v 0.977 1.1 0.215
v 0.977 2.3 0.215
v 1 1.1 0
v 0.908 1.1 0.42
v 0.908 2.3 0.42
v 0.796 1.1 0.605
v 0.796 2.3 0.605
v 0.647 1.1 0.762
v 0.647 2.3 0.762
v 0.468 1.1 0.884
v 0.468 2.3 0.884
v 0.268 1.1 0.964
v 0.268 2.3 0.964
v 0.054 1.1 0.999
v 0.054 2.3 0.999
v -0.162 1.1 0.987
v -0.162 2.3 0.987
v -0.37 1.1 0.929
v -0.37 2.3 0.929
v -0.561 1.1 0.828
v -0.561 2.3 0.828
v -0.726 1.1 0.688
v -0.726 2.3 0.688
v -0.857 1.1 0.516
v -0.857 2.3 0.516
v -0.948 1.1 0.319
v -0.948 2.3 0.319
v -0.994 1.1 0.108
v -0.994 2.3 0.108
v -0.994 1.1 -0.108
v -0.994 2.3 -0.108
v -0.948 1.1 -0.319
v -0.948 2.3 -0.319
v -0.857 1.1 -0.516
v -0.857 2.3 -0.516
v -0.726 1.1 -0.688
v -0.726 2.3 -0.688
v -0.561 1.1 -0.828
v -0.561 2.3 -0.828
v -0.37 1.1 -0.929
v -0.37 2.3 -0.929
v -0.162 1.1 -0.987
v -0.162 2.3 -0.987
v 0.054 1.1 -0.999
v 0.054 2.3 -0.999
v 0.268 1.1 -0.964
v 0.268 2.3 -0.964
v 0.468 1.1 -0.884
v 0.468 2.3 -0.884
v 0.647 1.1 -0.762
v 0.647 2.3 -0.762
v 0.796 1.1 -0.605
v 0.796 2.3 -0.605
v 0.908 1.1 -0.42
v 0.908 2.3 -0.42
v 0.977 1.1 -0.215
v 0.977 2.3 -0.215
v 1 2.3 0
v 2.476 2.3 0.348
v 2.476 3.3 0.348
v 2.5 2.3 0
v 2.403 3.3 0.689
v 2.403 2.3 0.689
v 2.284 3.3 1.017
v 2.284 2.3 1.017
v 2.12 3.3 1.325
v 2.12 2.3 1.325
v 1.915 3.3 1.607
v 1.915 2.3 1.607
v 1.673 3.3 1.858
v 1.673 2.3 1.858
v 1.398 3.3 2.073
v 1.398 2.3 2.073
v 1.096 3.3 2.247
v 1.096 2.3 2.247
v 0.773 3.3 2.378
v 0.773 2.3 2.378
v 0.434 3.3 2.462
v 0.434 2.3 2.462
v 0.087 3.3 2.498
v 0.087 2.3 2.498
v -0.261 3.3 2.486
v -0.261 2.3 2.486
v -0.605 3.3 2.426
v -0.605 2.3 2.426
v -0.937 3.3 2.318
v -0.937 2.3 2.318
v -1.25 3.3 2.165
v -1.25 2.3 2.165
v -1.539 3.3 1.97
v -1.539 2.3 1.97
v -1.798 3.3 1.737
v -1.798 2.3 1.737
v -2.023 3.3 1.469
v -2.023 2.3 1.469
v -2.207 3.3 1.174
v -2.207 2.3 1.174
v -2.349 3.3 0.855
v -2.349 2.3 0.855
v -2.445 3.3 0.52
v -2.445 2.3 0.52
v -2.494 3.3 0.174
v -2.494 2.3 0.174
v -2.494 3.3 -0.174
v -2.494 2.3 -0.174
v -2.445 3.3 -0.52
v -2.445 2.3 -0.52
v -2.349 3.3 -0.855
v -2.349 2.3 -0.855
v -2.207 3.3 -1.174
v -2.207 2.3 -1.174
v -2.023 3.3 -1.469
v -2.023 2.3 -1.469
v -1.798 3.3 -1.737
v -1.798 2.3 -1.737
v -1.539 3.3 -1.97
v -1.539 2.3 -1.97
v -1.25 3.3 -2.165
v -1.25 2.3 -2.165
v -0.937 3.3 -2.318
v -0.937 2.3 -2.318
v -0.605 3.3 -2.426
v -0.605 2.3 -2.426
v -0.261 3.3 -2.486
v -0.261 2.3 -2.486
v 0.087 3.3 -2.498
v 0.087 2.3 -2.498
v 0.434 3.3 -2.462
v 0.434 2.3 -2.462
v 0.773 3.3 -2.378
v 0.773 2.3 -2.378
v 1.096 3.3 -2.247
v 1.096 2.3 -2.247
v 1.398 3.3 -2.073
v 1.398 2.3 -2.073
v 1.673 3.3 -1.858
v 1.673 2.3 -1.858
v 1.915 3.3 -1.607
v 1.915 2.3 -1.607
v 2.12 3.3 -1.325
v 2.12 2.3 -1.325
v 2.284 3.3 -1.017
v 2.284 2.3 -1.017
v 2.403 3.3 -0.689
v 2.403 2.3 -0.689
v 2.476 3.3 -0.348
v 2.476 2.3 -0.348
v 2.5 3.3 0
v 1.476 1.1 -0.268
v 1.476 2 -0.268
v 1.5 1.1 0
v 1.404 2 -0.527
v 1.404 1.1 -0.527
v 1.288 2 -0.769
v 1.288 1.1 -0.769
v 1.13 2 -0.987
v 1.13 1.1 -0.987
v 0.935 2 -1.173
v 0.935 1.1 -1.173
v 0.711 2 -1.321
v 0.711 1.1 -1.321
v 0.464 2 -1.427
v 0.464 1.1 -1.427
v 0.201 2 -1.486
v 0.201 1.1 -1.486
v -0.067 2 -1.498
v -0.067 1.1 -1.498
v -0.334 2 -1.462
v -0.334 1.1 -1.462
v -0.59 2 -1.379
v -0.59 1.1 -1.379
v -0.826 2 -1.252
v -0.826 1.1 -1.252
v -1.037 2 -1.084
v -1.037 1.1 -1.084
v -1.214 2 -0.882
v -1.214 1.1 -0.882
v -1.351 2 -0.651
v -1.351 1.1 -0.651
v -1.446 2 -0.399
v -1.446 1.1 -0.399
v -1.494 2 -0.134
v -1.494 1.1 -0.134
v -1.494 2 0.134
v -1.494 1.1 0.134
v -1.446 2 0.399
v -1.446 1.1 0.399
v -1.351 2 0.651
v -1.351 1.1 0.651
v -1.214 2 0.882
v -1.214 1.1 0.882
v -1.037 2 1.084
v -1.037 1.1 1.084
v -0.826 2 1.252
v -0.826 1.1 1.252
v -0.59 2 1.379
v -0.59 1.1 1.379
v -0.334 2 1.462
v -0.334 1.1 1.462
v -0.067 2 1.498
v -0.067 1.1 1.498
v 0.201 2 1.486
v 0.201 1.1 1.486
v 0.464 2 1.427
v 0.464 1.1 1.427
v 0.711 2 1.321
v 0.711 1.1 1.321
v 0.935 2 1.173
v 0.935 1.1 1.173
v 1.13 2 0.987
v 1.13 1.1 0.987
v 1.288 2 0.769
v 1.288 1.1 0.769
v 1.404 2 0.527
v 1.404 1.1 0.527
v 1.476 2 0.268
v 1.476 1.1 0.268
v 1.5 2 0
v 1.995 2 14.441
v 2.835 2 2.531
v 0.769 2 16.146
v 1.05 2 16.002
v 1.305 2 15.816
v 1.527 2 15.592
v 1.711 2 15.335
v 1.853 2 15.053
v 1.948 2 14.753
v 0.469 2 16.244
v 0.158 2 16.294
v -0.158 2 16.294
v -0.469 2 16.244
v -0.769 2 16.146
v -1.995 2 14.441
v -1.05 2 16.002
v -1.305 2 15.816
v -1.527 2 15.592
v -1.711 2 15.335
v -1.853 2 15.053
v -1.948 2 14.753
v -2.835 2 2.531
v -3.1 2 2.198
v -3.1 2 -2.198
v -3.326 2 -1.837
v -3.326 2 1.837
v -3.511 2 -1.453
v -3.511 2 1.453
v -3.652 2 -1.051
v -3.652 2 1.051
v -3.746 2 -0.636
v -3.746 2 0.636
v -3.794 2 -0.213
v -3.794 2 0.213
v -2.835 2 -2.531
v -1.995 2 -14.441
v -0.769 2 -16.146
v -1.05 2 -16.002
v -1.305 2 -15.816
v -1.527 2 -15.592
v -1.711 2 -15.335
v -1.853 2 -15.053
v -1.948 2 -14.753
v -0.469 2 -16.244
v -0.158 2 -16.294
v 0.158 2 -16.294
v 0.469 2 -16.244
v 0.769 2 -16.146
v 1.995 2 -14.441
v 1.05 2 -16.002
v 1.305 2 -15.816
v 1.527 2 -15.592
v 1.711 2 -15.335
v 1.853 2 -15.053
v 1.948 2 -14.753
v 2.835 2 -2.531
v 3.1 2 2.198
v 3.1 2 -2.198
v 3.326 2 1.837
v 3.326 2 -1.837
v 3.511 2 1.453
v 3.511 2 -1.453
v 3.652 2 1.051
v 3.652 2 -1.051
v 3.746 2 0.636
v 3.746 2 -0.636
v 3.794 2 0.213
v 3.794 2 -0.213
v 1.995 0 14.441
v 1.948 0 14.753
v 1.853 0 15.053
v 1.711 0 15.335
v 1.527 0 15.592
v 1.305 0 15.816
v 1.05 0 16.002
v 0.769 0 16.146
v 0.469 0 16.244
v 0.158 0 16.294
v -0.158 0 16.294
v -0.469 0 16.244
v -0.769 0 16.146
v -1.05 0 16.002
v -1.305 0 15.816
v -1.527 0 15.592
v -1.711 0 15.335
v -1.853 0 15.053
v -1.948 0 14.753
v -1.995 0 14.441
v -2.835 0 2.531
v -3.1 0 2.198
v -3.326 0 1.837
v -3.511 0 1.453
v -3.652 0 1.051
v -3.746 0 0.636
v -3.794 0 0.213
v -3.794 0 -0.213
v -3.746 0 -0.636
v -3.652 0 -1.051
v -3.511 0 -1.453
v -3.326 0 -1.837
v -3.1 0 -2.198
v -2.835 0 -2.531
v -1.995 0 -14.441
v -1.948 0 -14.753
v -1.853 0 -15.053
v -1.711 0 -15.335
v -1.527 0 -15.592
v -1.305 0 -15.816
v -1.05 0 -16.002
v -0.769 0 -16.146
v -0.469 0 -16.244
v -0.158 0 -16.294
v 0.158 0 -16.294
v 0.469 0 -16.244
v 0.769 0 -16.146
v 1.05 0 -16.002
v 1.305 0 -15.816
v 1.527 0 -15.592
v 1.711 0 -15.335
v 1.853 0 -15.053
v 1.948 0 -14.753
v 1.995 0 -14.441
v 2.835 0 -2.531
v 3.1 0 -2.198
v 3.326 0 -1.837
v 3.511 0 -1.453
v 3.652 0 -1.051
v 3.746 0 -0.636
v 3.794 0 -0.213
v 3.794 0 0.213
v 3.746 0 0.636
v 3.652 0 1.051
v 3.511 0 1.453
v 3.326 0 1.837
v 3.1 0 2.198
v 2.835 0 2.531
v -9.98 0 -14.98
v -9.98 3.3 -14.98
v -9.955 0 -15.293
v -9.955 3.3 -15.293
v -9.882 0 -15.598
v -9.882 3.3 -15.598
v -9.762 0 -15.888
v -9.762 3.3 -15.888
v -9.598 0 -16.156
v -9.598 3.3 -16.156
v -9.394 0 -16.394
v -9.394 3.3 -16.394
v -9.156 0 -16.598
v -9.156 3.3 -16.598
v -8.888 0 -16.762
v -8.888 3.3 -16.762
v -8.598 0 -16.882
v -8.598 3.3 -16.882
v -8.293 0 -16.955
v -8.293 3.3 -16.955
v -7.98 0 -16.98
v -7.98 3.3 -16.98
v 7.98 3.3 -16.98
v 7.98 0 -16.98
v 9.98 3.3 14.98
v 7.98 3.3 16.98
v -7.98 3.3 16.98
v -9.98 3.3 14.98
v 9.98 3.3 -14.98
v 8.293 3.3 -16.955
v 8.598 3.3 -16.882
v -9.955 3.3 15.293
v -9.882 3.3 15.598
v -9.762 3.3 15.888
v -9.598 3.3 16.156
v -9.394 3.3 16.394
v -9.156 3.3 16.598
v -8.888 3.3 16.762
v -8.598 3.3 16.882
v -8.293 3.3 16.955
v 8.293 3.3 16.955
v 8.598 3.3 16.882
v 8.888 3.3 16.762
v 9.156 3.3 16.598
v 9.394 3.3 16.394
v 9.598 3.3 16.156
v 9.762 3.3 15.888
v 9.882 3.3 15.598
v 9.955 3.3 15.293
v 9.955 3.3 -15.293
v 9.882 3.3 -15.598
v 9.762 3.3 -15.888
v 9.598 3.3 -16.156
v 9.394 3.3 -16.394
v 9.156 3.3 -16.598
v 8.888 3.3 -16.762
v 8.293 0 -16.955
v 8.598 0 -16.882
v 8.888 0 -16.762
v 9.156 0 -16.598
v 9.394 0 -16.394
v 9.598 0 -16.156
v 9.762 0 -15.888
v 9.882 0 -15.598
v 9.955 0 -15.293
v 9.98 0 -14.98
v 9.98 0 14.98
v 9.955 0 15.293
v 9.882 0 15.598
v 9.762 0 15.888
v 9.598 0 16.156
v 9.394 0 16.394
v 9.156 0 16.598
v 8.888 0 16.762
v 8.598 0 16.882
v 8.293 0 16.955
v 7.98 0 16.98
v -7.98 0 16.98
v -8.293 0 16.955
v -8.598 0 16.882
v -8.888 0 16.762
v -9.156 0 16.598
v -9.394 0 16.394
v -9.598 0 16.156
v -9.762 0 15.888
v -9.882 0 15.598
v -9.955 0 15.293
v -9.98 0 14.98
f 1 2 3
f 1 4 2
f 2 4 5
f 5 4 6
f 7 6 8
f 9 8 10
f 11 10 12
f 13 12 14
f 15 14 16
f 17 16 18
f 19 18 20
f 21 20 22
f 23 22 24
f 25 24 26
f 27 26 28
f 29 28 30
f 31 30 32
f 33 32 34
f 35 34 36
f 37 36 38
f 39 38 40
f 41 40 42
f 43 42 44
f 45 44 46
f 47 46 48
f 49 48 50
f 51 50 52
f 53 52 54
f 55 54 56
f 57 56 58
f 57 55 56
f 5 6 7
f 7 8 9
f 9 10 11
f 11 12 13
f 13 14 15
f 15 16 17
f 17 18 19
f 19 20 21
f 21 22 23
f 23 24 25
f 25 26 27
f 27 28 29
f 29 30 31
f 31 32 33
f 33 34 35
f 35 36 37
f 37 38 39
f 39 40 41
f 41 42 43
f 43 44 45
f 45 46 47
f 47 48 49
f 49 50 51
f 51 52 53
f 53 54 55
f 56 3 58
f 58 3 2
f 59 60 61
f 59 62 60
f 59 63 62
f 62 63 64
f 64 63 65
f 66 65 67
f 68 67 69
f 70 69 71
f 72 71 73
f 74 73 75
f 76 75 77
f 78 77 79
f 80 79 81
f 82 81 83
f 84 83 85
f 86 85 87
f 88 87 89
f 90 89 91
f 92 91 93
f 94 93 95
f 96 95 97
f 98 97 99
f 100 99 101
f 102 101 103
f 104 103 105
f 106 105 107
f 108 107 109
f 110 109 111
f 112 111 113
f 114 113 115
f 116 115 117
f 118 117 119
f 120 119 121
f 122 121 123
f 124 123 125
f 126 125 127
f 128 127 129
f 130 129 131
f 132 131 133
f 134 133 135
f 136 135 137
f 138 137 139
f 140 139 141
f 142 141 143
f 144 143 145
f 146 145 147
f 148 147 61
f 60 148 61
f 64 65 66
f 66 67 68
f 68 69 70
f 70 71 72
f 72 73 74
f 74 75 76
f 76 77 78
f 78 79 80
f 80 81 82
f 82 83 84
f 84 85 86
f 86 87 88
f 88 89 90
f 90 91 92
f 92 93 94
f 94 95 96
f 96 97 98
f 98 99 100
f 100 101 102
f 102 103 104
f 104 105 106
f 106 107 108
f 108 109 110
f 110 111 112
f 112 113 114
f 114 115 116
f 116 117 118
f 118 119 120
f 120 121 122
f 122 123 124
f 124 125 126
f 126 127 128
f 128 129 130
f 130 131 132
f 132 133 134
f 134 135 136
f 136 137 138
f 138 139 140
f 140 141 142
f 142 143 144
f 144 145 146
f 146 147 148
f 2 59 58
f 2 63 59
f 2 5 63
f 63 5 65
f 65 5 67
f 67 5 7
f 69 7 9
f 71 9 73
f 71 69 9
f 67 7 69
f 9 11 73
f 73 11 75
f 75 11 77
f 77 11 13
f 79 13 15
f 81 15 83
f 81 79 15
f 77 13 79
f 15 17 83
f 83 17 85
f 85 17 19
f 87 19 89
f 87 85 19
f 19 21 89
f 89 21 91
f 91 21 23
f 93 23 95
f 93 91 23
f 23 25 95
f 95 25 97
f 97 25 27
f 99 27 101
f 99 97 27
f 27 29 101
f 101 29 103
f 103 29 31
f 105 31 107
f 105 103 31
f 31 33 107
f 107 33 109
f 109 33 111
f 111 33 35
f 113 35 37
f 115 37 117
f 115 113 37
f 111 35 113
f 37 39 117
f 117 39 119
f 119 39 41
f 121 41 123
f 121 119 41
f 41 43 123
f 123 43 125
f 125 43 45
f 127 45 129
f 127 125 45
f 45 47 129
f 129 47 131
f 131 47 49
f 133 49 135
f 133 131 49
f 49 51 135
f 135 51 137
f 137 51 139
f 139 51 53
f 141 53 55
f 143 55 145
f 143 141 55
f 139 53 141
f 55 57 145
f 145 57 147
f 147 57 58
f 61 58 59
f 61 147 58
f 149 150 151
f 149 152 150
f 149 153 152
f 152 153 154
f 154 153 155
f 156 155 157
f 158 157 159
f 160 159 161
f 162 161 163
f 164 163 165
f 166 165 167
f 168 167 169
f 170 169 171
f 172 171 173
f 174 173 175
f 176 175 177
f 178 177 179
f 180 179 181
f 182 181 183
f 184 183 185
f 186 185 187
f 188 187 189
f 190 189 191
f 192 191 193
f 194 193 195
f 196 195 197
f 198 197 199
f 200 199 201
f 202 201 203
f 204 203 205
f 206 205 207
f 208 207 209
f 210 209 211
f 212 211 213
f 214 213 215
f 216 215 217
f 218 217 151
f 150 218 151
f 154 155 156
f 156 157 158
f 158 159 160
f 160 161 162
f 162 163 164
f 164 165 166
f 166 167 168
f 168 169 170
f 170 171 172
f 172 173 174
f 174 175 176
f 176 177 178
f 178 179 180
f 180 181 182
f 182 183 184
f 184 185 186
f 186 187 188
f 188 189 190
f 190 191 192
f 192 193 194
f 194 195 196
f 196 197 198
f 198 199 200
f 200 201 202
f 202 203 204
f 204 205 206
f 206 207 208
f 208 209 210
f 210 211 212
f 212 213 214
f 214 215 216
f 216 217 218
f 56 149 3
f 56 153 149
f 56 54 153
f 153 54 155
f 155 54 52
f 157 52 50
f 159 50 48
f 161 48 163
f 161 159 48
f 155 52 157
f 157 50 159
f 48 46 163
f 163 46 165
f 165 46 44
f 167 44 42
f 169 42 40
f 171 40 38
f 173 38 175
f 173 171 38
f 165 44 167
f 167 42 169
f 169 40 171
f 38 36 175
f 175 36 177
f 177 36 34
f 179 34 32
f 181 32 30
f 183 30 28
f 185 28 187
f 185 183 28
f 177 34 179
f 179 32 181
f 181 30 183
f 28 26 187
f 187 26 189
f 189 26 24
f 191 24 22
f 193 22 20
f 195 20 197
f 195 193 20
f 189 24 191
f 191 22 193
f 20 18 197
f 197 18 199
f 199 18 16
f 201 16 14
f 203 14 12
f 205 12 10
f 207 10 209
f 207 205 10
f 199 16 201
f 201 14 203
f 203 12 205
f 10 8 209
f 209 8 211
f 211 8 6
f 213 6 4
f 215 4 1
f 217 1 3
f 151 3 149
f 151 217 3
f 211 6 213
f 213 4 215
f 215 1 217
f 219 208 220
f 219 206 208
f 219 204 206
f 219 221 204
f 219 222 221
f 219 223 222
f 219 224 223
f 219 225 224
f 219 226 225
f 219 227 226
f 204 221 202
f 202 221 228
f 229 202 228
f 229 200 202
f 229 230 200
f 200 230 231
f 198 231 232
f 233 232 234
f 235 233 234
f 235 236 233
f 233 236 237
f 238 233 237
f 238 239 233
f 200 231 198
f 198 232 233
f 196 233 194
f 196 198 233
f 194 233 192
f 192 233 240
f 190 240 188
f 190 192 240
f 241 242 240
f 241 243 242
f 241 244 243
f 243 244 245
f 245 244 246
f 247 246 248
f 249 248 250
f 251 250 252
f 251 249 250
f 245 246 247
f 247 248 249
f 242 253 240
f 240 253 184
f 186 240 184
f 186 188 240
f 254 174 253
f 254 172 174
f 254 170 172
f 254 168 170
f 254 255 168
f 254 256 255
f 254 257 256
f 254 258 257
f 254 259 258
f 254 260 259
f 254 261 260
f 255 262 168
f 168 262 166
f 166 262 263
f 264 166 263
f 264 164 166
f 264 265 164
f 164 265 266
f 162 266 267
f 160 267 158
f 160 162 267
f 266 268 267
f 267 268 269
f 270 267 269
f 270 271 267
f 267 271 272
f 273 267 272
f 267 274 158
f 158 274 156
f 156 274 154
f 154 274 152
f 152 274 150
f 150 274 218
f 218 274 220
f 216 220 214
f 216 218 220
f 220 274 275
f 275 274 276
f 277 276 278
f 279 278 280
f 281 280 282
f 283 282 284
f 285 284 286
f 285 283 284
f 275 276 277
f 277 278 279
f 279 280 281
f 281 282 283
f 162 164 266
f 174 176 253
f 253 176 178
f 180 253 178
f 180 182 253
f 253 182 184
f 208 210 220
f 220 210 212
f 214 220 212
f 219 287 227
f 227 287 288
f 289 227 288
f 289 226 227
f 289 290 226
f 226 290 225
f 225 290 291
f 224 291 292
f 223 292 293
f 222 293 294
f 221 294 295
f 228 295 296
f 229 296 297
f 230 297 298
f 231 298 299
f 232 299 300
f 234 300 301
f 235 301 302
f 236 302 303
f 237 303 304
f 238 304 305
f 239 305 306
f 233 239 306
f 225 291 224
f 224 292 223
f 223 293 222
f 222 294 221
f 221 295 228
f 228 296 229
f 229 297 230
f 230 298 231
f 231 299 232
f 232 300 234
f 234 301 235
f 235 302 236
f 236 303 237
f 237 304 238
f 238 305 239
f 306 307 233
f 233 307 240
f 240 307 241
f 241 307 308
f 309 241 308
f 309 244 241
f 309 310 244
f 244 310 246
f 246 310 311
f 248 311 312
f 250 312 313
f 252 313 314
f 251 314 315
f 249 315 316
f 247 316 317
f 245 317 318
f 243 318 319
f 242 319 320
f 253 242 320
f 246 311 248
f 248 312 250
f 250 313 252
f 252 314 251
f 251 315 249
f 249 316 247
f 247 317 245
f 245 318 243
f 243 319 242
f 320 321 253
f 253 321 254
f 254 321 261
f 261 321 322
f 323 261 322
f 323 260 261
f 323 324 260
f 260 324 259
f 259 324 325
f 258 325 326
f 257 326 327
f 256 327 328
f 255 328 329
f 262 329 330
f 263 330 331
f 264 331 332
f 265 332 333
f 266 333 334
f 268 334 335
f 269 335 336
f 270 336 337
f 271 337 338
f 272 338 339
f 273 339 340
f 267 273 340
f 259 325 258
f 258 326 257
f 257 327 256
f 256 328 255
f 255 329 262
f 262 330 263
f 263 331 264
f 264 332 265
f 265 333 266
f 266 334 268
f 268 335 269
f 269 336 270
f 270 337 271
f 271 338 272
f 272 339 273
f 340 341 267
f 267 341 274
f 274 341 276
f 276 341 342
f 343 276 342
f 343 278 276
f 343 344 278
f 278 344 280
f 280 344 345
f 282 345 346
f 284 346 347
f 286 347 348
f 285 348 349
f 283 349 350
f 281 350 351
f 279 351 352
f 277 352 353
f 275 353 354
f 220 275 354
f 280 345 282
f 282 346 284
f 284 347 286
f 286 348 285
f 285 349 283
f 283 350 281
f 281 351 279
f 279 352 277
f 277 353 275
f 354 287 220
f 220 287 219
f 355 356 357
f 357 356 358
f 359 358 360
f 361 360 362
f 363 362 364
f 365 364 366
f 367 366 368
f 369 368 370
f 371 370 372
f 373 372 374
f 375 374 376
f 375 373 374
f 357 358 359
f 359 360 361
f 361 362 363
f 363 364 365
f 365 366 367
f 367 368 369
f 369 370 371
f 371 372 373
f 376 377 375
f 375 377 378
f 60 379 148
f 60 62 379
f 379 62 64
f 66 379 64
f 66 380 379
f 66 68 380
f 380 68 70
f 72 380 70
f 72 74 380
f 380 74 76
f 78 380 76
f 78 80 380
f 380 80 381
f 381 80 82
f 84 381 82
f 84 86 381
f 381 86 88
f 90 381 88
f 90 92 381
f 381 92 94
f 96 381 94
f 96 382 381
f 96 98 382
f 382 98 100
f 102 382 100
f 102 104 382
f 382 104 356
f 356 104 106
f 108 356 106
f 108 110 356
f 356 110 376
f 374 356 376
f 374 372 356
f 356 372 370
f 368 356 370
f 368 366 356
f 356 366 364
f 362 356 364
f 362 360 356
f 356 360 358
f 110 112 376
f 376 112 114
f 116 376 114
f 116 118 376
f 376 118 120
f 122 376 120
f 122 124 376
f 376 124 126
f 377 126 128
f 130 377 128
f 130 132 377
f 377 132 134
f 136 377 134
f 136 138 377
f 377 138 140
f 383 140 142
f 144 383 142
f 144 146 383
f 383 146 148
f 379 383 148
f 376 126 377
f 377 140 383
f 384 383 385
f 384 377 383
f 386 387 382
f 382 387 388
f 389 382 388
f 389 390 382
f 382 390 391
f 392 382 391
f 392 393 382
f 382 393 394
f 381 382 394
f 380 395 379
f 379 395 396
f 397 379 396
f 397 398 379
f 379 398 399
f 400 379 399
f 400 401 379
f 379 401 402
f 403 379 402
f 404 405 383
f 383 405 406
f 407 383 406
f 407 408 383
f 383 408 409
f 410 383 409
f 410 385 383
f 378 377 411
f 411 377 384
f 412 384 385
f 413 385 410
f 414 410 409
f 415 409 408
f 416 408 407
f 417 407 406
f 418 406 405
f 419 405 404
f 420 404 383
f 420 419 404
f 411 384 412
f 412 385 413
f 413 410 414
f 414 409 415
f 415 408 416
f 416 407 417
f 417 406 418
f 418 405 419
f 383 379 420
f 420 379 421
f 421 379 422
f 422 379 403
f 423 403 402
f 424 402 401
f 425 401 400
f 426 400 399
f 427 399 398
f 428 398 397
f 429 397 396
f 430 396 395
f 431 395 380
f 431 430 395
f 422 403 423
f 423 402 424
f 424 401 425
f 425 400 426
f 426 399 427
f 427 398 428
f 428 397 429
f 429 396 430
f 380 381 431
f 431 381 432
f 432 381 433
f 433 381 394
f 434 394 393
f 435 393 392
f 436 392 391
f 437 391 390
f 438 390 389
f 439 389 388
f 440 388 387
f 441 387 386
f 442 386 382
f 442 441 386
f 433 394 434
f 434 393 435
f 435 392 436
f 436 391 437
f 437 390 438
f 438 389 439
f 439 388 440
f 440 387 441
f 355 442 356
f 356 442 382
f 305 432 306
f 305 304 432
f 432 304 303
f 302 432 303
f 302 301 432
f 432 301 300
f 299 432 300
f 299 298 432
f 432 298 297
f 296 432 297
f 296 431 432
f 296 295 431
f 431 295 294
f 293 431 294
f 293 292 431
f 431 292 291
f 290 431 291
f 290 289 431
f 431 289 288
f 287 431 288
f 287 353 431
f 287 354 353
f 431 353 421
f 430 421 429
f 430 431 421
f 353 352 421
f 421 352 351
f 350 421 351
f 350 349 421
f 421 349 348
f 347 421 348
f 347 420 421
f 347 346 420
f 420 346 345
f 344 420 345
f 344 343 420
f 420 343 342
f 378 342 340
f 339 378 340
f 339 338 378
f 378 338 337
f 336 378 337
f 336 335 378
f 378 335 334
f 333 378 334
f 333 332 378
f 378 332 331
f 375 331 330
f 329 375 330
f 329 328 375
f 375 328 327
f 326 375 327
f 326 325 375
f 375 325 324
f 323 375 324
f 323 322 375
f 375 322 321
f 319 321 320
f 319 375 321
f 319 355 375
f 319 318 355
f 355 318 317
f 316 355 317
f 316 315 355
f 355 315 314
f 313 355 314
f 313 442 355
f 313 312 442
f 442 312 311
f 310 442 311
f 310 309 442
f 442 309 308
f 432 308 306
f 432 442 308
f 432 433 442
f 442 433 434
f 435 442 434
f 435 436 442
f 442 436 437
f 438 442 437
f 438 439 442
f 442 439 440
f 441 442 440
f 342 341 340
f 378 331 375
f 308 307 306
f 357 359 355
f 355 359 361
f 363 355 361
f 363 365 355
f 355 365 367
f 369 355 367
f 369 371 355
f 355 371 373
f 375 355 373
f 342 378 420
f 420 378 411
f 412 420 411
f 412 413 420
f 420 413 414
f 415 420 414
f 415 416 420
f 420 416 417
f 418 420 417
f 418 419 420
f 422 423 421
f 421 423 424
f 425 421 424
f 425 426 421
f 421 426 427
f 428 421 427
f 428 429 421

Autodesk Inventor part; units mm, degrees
ref_plane "YZ Plane" through (0, 0, 0) normal (1, 0, 0) x (0, 1, 0)
ref_plane "XZ Plane" through (0, 0, 0) normal (0, 1, 0) x (-1, 0, 0)
ref_plane "XY Plane" through (0, 0, 0) normal (0, 0, 1) x (1, 0, 0)
sketch "Sketch1" plane through (0, 0, 0) normal (0, 1, 0) x (-1, 0, 0)
  line L0 (9.98, 16.98) -> (-9.98, 16.98)
  line L1 (-9.98, 16.98) -> (-9.98, -16.98)
  line L2 (-9.98, -16.98) -> (9.98, -16.98)
  line L3 (9.98, -16.98) -> (9.98, 16.98)
  line L4 (9.98, 16.98) -> (-9.98, -16.98) construction
  line L5 (-9.98, 16.98) -> (9.98, -16.98) construction
  point P0 (0, 0)
  dimension "d0" = 33.96
  dimension "d1" = 19.96
extrude "arm-horn" add sketch "Sketch1" along normal blind 3.3
fillet "Fillet1" radius 2 1 edges at (-9.98, 1.65, 16.98)
fillet "Fillet2" radius 2 1 edges at (9.98, 1.65, 16.98)
fillet "Fillet3" radius 2 1 edges at (9.98, 1.65, -16.98)
fillet "Fillet4" radius 2 1 edges at (-9.98, 1.65, -16.98)
sketch "Sketch3" plane through (0, 0, 0) normal (0, -1, 0) x (1, 0, 0)
  arc A0 (-2.612, 2.76) -> (-2.8345, 2.5309) centre (0, 0) ccw construction
  arc A1 (-1.9951, -14.4406) -> (1.9951, -14.4406) centre (0, -14.3) ccw
  arc A2 (0, 12.3) -> (1.9951, 14.4406) centre (0, 14.3) ccw construction
  line L0 (1.9951, 14.4406) -> (2.8345, 2.5309)
  line L1 (-1.9951, 14.4406) -> (-2.8345, 2.5309)
  line L2 (-2.8345, -2.5309) -> (-1.9951, -14.4406)
  line L3 (2.8345, -2.5309) -> (1.9951, -14.4406)
  circle A3 centre (0, -1.5) radius 2.9 construction
  arc A4 (-2.612, 2.76) -> (-2.8928, 1.7039) centre (0, 1.5) ccw construction
  line L4 (-7.98, 16.98) -> (7.98, 16.98) construction
  line L5 (0, 16.98) -> (0, -18.0608) construction
  line L6 (7.98, -16.98) -> (-7.98, -16.98) construction
  arc A5 (0, 4.4) -> (-2.612, 2.76) centre (0, 1.5) ccw construction
  arc A6 (2.612, 2.76) -> (0, 4.4) centre (0, 1.5) ccw construction
  arc A7 (0, 3.8) -> (-2.612, 2.76) centre (0, 0) ccw construction
  arc A8 (2.612, 2.76) -> (0, 3.8) centre (0, 0) ccw construction
  arc A9 (-2.8928, 1.7039) -> (-2.4819, 0) centre (0, 1.5) ccw construction
  arc A10 (-2.4819, 0) -> (2.4819, 0) centre (0, 1.5) ccw construction
  arc A11 (2.4819, 0) -> (2.8928, 1.7039) centre (0, 1.5) ccw construction
  arc A12 (2.8928, 1.7039) -> (2.612, 2.76) centre (0, 1.5) ccw construction
  line L7 (-2.8345, 2.5309) -> (-2.8928, 1.7039) construction
  arc A13 (-2.8345, 2.5309) -> (-2.8345, -2.5309) centre (0, 0) ccw
  arc A14 (0, -3.8) -> (2.612, -2.76) centre (0, 0) ccw construction
  arc A15 (-2.612, -2.76) -> (0, -3.8) centre (0, 0) ccw construction
  arc A16 (2.612, -2.76) -> (2.8345, -2.5309) centre (0, 0) ccw construction
  arc A17 (-2.8345, -2.5309) -> (-2.612, -2.76) centre (0, 0) ccw construction
  arc A18 (2.8345, -2.5309) -> (2.612, 2.76) centre (0, 0) ccw
  arc A19 (-1.9951, 14.4406) -> (0, 12.3) centre (0, 14.3) ccw construction
  arc A20 (1.9951, 14.4406) -> (-1.9951, 14.4406) centre (0, 14.3) ccw
  arc A21 (0, -12.3) -> (-1.9951, -14.4406) centre (0, -14.3) ccw construction
  arc A22 (1.9951, -14.4406) -> (0, -12.3) centre (0, -14.3) ccw construction
  line L8 (2.8345, 2.5309) -> (2.8928, 1.7039) construction
  point P0 (0, -16.98)
  dimension "d12" = 4
  dimension "d13" = 5.8
  dimension "d14" = 7.6
  dimension "d16" = 1.5
  dimension "d17" = 1.5
  dimension "d18" = 14.3
  dimension "d19" = 14.3
extrude "Extrusion3" cut sketch "Sketch3" against normal blind 2
sketch "Sketch6" plane through (0, 3.3, 0) normal (0, 1, 0) x (1, 0, 0)
  circle A0 centre (0, 0) radius 1
  circle A1 centre (0, 0) radius 1.5
  dimension "d29" = 2
  dimension "d30" = 3
extrude "Extrusion6" add sketch "Sketch6" against normal blind 2.2
sketch "Sketch7" plane through (0, 3.3, 0) normal (0, 1, 0) x (1, 0, 0)
  circle A0 centre (0, 0) radius 2.5
  dimension "d33" = 5
extrude "Extrusion7" cut sketch "Sketch7" against normal blind 1
sketch "Sketch8" plane through (0, 2.3, 0) normal (0, 1, 0) x (1, 0, 0)
  circle A0 centre (0, 0) radius 1
  dimension "d36" = 2
extrude "Extrusion8" cut sketch "Sketch8" against normal up to next
equation "\"d8\" = cornerrad"
equation "\"d9\" = cornerrad"
equation "\"d10\" = cornerrad"
equation "\"d11\" = cornerrad"
equation "\"d19\" = d18"
equation "\"d20\" = armslotd"
equation "\"printer3dtolerance\" = 0.1"
equation "\"wallw\" = 42"
equation "\"wallh\" = 44"
equation "\"cornerrad\" = 2"
equation "\"baseextra\" = 2"
equation "\"wall1_thick\" = 8"
equation "\"wall2_thick\" = 6.4"
equation "\"wall3_thick\" = 4"
equation "\"wall1slot\" = 8.1"
equation "\"wall2slot\" = 6.5"
equation "\"wall3slot\" = 4.1"
equation "\"gap2\" = 28"
equation "\"baseh\" = 79"
equation "\"basew\" = 44"
equation "\"base_thick\" = 6"
equation "\"base_slots_depth\" = 4"
equation "\"servobigcircledia\" = 11.6"
equation "\"servosmallcircledia\" = 5.9"
equation "\"servo9gw\" = 22.8"
equation "\"servomounth\" = 4"
equation "\"servomountsquare\" = 4"
equation "\"servopolygonr\" = 6.1"
equation "\"servopolygonl\" = 5.9"
equation "\"distancefrombottom\" = 34"
equation "\"distancefromleft\" = 22"
equation "\"wall3slotd\" = 2"
equation "\"wall3slotw\" = 36"
equation "\"adapterh\" = 16"
equation "\"adapterw\" = 32"
equation "\"armw\" = 34"
equation "\"armslotd\" = 2"
equation "\"armthick\" = 3"
equation "\"fanhs\" = 9.6"
equation "\"fanhb\" = 11"
equation "\"adapterwallthick\" = 6"
equation "\"adapterwallslotd\" = 2"
equation "\"armhornthick\" = 3"
equation "\"hornscrewholed\" = 2"
equation "\"hornthick\" = 1.5"
equation "\"hornscrewheadd\" = 3"
properties part number "arm-slot"
